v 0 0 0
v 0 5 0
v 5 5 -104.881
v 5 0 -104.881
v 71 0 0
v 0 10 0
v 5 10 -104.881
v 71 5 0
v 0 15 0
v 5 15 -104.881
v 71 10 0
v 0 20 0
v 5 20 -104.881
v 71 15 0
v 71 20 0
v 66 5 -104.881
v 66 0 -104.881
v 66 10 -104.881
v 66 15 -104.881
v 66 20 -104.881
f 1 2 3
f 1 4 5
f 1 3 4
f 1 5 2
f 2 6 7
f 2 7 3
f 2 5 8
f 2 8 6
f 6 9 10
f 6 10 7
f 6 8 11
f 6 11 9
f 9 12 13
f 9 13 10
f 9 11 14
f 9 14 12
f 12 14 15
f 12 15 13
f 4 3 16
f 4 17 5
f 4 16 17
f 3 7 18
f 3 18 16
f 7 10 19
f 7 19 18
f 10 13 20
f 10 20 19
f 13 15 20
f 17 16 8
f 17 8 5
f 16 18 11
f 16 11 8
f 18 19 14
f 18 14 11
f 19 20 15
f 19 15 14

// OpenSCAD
// Start: lazy_union
default_5_default_5();
// End: lazy_union

// Modules.

// 'PartMaterial undef-default - default 5.0'
module default_5_default_5() {
  // 'None : _combine_solids_and_holes'
  union() {
    // 'default : _combine_solids_and_holes'
    union() {
      // 'prism'
      multmatrix(m=[[1.0, 0.0, 0.0, 0.0], [0.0, 0.0, 1.0, 0.0], [-0.0, -1.0, -0.0, -0.0], [0.0, 0.0, 0.0, 1.0]]) {
        // 'prism : _combine_solids_and_holes'
        union() {
          // 'prism'
          linear_extrude(height=20.0, twist=0.0, slices=4, scale=[1.0, 1.0]) {
            polygon(points=[[0.0, 0.0], [71.0, 0.0], [66.0, 104.88088481701516], [5.0, 104.88088481701516]]);
          }
        }
      }
    }
  }
} // end module default_5_default_5
